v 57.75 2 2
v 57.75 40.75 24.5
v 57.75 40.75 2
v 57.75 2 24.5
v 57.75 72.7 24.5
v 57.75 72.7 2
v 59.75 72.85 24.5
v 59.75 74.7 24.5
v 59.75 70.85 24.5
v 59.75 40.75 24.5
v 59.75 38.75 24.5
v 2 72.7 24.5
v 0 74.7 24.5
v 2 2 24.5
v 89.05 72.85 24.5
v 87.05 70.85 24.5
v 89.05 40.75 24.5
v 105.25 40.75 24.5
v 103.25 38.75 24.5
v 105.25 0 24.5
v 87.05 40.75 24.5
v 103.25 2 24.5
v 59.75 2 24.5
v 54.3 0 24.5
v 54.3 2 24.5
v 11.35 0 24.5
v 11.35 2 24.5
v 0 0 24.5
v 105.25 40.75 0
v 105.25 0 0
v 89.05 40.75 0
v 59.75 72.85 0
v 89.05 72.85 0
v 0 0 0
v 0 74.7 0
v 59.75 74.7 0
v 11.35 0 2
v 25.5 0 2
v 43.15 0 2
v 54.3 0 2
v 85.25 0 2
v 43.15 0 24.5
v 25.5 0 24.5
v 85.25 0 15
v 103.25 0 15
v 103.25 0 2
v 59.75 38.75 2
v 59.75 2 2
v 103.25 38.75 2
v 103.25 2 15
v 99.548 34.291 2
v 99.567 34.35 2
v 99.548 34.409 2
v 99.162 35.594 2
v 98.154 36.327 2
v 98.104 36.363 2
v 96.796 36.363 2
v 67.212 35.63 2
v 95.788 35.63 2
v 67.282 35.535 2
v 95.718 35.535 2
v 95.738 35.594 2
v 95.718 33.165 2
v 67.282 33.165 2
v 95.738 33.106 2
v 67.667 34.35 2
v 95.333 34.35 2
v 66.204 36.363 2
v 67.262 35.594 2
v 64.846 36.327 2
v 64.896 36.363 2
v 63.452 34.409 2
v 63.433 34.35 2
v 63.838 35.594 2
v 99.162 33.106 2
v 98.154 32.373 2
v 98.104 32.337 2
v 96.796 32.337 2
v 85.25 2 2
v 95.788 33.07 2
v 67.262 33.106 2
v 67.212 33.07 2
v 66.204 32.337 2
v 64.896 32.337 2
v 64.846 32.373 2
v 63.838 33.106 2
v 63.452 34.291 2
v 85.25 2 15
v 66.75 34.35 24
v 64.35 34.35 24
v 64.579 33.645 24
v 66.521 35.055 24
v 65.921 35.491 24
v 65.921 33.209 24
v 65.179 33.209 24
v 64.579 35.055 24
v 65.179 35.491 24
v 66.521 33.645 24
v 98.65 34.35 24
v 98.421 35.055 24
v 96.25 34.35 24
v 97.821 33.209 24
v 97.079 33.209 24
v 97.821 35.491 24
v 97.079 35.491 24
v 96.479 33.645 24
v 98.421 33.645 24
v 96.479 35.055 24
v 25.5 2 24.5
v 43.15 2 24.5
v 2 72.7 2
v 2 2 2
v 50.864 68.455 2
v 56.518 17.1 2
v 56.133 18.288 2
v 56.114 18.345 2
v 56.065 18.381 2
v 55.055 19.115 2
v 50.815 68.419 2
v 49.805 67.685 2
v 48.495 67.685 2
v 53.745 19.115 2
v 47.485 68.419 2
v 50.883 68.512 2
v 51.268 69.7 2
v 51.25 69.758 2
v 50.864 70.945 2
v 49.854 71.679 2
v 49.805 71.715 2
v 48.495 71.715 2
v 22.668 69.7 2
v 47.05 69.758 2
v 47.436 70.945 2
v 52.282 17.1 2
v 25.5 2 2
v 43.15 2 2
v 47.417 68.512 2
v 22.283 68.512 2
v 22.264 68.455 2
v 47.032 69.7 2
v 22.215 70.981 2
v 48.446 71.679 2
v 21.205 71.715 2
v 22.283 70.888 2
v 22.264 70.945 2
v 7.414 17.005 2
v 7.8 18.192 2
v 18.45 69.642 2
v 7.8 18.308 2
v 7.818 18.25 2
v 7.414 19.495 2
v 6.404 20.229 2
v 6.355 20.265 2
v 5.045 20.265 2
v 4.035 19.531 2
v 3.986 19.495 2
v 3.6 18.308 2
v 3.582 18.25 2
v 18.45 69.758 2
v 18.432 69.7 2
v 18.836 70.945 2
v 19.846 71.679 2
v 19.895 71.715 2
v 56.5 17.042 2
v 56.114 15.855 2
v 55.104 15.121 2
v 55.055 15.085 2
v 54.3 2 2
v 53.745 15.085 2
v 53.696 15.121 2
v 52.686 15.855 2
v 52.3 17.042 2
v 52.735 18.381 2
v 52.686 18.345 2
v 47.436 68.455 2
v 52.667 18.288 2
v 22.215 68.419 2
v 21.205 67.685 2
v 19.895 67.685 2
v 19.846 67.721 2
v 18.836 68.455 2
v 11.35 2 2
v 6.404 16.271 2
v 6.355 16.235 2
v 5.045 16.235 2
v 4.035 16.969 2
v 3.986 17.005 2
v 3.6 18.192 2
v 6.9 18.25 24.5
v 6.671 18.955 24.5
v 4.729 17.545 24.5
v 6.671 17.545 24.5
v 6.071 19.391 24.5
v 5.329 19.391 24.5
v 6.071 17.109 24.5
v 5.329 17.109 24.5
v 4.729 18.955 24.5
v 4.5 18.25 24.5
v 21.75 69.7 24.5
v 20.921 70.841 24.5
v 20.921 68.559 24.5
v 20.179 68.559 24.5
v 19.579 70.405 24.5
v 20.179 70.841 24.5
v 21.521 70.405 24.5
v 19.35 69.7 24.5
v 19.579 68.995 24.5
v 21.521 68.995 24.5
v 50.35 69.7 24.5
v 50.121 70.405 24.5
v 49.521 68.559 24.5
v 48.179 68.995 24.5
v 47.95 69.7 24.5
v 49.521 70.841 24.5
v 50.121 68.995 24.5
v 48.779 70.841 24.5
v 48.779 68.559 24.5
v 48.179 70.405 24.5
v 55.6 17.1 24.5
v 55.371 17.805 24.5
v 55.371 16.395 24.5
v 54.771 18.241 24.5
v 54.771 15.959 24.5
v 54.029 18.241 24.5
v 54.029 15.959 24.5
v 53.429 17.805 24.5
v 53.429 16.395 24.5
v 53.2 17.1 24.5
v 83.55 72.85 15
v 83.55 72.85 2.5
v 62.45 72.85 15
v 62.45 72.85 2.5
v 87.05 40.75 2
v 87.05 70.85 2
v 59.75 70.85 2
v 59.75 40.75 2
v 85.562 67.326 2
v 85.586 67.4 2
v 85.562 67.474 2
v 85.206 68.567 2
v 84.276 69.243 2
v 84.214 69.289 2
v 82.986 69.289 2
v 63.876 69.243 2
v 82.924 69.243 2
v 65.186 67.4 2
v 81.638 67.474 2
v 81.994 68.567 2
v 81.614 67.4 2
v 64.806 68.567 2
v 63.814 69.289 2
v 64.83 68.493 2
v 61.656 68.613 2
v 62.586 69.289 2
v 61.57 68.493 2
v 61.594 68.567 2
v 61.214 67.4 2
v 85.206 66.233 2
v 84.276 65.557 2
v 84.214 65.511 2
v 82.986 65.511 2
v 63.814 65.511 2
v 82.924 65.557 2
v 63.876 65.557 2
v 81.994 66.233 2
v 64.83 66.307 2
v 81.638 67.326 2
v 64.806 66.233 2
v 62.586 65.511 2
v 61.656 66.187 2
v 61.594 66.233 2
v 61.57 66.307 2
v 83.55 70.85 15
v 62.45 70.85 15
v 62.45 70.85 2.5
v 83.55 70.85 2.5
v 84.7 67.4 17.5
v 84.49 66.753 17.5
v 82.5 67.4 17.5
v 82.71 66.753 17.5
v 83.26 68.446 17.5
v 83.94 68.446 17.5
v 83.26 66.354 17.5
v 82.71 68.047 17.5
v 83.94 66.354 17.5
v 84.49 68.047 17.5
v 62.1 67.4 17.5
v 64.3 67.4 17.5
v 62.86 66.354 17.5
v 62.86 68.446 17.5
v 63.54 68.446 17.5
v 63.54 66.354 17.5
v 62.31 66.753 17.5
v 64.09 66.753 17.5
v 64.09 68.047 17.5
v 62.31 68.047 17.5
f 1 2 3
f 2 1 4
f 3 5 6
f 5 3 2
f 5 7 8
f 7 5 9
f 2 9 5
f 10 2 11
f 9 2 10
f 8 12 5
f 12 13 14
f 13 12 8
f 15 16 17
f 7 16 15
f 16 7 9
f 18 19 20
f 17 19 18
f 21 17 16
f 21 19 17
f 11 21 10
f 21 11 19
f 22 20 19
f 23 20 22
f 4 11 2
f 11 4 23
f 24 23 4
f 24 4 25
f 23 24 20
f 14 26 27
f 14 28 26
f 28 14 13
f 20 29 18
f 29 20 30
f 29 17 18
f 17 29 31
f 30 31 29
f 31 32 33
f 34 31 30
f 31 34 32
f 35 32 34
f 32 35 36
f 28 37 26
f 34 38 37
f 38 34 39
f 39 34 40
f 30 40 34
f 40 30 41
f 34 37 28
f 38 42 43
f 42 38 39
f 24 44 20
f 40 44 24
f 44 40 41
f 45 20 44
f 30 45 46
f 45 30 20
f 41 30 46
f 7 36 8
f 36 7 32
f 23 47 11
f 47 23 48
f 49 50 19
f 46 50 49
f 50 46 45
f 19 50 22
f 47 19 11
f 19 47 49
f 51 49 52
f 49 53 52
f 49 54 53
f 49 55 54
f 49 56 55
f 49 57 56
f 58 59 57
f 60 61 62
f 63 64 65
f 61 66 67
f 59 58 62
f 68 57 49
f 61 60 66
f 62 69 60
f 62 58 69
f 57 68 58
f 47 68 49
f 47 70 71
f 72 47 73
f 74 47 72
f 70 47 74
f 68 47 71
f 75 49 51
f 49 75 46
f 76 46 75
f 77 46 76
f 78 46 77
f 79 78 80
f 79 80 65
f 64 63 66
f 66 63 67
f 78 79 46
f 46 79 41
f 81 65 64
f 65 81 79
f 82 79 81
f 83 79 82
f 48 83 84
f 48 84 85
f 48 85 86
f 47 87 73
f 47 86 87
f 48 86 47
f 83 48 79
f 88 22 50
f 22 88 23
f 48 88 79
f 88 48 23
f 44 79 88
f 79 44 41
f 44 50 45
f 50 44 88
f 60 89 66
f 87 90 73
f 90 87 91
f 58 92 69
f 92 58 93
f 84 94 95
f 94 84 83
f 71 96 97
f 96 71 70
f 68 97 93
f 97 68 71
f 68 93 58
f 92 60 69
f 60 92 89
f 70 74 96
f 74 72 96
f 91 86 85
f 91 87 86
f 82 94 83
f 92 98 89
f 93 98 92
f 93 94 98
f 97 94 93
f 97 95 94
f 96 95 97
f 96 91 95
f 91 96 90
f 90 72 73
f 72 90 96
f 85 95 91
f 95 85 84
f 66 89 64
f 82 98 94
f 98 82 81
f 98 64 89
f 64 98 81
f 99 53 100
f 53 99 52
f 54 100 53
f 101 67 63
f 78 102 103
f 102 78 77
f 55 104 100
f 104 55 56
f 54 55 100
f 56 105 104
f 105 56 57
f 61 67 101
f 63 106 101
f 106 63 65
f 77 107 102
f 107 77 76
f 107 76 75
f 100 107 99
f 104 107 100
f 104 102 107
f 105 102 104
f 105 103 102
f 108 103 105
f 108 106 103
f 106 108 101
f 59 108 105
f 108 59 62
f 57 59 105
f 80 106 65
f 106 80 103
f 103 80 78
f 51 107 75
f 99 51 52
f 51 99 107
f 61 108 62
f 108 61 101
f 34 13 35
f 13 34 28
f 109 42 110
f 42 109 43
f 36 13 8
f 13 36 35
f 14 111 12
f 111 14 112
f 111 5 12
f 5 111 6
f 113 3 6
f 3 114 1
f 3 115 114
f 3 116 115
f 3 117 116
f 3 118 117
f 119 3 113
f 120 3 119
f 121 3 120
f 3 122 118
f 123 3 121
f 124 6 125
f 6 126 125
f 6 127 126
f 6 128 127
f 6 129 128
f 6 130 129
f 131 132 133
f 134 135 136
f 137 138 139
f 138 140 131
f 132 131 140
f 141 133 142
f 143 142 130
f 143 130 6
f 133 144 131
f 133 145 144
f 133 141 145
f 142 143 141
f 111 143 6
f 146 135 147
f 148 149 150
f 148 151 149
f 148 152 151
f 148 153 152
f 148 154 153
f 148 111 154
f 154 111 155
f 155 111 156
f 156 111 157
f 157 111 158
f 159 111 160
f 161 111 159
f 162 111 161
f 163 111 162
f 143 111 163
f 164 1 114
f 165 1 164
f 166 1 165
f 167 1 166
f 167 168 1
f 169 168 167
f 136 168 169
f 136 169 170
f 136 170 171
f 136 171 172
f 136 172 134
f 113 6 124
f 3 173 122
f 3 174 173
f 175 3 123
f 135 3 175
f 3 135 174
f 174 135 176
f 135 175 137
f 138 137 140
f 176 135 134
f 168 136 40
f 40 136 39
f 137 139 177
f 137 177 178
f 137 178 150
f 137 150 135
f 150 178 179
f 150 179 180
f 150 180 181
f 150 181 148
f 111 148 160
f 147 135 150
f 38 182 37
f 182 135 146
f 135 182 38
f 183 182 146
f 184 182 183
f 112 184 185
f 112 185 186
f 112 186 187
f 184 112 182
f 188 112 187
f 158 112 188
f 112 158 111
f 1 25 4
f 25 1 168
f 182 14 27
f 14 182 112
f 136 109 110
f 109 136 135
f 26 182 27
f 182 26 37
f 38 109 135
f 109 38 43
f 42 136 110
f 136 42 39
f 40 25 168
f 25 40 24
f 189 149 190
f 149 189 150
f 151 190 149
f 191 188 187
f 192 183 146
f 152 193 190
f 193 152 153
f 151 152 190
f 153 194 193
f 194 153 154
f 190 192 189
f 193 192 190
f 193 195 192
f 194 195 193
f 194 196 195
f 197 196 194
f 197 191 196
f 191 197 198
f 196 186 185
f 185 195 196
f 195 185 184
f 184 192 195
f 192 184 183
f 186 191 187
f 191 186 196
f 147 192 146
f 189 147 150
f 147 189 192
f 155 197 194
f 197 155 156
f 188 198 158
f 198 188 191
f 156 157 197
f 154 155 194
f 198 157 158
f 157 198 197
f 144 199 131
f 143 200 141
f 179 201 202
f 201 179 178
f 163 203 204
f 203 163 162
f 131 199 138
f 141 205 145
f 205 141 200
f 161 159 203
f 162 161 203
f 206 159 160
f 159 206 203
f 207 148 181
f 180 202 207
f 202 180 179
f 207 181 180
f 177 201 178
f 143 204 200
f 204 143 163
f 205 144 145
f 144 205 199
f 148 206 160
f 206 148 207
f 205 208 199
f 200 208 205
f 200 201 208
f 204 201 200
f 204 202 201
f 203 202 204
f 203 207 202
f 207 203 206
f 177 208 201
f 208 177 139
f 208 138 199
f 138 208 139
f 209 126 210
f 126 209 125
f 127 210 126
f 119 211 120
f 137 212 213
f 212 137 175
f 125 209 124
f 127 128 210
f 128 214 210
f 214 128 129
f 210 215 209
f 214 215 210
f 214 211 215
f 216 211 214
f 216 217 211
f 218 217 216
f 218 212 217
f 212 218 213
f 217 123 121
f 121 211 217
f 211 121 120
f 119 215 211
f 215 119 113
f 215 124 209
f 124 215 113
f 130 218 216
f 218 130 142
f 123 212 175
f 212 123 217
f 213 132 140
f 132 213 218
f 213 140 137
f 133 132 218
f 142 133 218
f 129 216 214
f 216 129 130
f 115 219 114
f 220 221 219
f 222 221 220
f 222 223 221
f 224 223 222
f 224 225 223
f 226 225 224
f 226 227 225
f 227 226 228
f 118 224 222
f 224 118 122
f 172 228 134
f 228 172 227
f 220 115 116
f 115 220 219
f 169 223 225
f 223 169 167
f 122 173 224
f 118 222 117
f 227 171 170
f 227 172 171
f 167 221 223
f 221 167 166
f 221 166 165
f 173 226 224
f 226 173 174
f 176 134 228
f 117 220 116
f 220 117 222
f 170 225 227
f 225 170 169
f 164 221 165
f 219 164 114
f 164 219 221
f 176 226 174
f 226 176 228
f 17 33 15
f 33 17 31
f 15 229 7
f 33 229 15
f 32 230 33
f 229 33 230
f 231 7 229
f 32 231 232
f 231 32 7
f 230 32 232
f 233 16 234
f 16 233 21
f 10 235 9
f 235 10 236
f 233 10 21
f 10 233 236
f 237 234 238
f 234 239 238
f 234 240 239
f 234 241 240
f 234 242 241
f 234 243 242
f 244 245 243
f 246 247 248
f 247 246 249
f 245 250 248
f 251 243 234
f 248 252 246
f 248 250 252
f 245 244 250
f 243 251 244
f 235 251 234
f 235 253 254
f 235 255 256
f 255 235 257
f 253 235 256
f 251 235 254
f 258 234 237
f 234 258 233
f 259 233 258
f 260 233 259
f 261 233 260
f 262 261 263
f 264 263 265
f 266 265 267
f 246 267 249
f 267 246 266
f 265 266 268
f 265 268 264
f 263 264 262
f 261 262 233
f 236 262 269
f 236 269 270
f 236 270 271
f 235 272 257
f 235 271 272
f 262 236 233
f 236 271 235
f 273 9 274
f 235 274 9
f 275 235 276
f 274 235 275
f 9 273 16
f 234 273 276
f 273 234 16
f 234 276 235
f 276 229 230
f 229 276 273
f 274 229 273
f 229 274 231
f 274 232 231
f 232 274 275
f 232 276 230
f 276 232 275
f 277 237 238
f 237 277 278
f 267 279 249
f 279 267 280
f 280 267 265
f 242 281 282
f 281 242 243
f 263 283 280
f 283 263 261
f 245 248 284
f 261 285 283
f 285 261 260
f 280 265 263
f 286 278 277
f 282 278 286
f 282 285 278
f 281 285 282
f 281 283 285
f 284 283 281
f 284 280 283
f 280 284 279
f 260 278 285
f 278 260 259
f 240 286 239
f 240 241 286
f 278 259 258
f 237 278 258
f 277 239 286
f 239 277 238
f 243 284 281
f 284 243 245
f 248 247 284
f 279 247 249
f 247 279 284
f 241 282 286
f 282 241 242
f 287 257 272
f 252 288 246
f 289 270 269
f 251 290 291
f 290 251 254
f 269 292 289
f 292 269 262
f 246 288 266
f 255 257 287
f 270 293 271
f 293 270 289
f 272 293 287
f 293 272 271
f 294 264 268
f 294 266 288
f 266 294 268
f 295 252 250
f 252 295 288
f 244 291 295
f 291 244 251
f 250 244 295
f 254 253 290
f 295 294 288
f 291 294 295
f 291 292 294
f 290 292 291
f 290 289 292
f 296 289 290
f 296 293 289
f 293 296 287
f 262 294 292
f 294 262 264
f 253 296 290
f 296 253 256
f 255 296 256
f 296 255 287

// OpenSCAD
res=10;
dd=((41.5-28.5)/2)-1.7;
ddd=28.5+3.4;

// CAIXA DE ACONDICIONAMENTO DO MOTOR DE PASSO
translate([53.75+2+4-2,0,0]){
    difference(){
        cube([43.5+4,36.75+4,22.5+2]);
        #translate([2,2,2])cube([43.5,36.75,22.5]);
        #translate([2+1+41.5-14-3,0,2])cube([14+1+3,2,9+4]);
    }

    dd=((41.5-28.5)/2)-1.7;
    ddd=28.5+3.4;

    translate([3+dd,36.75+4-2-1-3.4,0])cylinder(20+4,1.7+0.5,1.7-0.5,$fn=res);
    translate([3+dd+ddd,36.75+4-2-1-3.4,0])cylinder(20+4,1.7+0.5,1.7-0.5,$fn=res);
}

// CAIXA DE ACONDICIONAMENTO DO ARDUINO UNO
translate([0,0,0]){
    difference(){
        cube([53.75+2+4,68.7+2+4,22.5+2]);
        #translate([2,2,2])cube([53.75+2,68.7+2,22.5]);
        #translate([2+1+9.35-1,0,2])cube([12.15+2,2,50]);
        #translate([2+1+9.35+12.15+19.65-1,0,2])cube([9.15+2,2,50]);
    }

    translate([2+1+1.7+1,2+1+13.55+1.7, 0])cylinder(22.5+2,1.7+0.5,1.7-0.5,$fn=res);
    translate([2+1+1.7+15.85,68.7+2+4-2-1-1.7-0.3, 0])cylinder(22.5+2,1.7+0.5,1.7-0.5,$fn=res);
    translate([53.75+2+4-2-1-1.7-5.9,68.7+2+4-2-1-1.7-0.3, 0])cylinder(22.5+2,1.7+0.5,1.7-0.5,$fn=res);
    translate([53.75+2+4-2-1-1.7-0.65,2+1+12.4+1.7, 0])cylinder(22.5+2,1.7+0.5,1.7-0.5,$fn=res);
}

// CAIXA DE ACONDICIONAMENTO DO MAX31865
translate([53.75+2+4+25.3+2+4-2,28.1+2+4+36.75+4-2,0])rotate([0,0,180]){
    difference(){
    cube([25.3+2+4,28.1+2+4,22.5+2]);
    #translate([2,2,2])cube([25.3+2,28.1+2,22.5]);
    #translate([7-1.5,0,2.5])cube([18.10+3,25,12.5]);
    }

    translate([2+1+0.85+1.6,2+1+0.85+1.6,0])cylinder(15.5+2,1.6+0.5,1.6-0.5,$fn=res);
    translate([25.3+2+4-2-1-0.85-1.6,2+1+0.85+1.6,0])cylinder(15.5+2,1.6+0.5,1.6-0.5,$fn=res);
}
